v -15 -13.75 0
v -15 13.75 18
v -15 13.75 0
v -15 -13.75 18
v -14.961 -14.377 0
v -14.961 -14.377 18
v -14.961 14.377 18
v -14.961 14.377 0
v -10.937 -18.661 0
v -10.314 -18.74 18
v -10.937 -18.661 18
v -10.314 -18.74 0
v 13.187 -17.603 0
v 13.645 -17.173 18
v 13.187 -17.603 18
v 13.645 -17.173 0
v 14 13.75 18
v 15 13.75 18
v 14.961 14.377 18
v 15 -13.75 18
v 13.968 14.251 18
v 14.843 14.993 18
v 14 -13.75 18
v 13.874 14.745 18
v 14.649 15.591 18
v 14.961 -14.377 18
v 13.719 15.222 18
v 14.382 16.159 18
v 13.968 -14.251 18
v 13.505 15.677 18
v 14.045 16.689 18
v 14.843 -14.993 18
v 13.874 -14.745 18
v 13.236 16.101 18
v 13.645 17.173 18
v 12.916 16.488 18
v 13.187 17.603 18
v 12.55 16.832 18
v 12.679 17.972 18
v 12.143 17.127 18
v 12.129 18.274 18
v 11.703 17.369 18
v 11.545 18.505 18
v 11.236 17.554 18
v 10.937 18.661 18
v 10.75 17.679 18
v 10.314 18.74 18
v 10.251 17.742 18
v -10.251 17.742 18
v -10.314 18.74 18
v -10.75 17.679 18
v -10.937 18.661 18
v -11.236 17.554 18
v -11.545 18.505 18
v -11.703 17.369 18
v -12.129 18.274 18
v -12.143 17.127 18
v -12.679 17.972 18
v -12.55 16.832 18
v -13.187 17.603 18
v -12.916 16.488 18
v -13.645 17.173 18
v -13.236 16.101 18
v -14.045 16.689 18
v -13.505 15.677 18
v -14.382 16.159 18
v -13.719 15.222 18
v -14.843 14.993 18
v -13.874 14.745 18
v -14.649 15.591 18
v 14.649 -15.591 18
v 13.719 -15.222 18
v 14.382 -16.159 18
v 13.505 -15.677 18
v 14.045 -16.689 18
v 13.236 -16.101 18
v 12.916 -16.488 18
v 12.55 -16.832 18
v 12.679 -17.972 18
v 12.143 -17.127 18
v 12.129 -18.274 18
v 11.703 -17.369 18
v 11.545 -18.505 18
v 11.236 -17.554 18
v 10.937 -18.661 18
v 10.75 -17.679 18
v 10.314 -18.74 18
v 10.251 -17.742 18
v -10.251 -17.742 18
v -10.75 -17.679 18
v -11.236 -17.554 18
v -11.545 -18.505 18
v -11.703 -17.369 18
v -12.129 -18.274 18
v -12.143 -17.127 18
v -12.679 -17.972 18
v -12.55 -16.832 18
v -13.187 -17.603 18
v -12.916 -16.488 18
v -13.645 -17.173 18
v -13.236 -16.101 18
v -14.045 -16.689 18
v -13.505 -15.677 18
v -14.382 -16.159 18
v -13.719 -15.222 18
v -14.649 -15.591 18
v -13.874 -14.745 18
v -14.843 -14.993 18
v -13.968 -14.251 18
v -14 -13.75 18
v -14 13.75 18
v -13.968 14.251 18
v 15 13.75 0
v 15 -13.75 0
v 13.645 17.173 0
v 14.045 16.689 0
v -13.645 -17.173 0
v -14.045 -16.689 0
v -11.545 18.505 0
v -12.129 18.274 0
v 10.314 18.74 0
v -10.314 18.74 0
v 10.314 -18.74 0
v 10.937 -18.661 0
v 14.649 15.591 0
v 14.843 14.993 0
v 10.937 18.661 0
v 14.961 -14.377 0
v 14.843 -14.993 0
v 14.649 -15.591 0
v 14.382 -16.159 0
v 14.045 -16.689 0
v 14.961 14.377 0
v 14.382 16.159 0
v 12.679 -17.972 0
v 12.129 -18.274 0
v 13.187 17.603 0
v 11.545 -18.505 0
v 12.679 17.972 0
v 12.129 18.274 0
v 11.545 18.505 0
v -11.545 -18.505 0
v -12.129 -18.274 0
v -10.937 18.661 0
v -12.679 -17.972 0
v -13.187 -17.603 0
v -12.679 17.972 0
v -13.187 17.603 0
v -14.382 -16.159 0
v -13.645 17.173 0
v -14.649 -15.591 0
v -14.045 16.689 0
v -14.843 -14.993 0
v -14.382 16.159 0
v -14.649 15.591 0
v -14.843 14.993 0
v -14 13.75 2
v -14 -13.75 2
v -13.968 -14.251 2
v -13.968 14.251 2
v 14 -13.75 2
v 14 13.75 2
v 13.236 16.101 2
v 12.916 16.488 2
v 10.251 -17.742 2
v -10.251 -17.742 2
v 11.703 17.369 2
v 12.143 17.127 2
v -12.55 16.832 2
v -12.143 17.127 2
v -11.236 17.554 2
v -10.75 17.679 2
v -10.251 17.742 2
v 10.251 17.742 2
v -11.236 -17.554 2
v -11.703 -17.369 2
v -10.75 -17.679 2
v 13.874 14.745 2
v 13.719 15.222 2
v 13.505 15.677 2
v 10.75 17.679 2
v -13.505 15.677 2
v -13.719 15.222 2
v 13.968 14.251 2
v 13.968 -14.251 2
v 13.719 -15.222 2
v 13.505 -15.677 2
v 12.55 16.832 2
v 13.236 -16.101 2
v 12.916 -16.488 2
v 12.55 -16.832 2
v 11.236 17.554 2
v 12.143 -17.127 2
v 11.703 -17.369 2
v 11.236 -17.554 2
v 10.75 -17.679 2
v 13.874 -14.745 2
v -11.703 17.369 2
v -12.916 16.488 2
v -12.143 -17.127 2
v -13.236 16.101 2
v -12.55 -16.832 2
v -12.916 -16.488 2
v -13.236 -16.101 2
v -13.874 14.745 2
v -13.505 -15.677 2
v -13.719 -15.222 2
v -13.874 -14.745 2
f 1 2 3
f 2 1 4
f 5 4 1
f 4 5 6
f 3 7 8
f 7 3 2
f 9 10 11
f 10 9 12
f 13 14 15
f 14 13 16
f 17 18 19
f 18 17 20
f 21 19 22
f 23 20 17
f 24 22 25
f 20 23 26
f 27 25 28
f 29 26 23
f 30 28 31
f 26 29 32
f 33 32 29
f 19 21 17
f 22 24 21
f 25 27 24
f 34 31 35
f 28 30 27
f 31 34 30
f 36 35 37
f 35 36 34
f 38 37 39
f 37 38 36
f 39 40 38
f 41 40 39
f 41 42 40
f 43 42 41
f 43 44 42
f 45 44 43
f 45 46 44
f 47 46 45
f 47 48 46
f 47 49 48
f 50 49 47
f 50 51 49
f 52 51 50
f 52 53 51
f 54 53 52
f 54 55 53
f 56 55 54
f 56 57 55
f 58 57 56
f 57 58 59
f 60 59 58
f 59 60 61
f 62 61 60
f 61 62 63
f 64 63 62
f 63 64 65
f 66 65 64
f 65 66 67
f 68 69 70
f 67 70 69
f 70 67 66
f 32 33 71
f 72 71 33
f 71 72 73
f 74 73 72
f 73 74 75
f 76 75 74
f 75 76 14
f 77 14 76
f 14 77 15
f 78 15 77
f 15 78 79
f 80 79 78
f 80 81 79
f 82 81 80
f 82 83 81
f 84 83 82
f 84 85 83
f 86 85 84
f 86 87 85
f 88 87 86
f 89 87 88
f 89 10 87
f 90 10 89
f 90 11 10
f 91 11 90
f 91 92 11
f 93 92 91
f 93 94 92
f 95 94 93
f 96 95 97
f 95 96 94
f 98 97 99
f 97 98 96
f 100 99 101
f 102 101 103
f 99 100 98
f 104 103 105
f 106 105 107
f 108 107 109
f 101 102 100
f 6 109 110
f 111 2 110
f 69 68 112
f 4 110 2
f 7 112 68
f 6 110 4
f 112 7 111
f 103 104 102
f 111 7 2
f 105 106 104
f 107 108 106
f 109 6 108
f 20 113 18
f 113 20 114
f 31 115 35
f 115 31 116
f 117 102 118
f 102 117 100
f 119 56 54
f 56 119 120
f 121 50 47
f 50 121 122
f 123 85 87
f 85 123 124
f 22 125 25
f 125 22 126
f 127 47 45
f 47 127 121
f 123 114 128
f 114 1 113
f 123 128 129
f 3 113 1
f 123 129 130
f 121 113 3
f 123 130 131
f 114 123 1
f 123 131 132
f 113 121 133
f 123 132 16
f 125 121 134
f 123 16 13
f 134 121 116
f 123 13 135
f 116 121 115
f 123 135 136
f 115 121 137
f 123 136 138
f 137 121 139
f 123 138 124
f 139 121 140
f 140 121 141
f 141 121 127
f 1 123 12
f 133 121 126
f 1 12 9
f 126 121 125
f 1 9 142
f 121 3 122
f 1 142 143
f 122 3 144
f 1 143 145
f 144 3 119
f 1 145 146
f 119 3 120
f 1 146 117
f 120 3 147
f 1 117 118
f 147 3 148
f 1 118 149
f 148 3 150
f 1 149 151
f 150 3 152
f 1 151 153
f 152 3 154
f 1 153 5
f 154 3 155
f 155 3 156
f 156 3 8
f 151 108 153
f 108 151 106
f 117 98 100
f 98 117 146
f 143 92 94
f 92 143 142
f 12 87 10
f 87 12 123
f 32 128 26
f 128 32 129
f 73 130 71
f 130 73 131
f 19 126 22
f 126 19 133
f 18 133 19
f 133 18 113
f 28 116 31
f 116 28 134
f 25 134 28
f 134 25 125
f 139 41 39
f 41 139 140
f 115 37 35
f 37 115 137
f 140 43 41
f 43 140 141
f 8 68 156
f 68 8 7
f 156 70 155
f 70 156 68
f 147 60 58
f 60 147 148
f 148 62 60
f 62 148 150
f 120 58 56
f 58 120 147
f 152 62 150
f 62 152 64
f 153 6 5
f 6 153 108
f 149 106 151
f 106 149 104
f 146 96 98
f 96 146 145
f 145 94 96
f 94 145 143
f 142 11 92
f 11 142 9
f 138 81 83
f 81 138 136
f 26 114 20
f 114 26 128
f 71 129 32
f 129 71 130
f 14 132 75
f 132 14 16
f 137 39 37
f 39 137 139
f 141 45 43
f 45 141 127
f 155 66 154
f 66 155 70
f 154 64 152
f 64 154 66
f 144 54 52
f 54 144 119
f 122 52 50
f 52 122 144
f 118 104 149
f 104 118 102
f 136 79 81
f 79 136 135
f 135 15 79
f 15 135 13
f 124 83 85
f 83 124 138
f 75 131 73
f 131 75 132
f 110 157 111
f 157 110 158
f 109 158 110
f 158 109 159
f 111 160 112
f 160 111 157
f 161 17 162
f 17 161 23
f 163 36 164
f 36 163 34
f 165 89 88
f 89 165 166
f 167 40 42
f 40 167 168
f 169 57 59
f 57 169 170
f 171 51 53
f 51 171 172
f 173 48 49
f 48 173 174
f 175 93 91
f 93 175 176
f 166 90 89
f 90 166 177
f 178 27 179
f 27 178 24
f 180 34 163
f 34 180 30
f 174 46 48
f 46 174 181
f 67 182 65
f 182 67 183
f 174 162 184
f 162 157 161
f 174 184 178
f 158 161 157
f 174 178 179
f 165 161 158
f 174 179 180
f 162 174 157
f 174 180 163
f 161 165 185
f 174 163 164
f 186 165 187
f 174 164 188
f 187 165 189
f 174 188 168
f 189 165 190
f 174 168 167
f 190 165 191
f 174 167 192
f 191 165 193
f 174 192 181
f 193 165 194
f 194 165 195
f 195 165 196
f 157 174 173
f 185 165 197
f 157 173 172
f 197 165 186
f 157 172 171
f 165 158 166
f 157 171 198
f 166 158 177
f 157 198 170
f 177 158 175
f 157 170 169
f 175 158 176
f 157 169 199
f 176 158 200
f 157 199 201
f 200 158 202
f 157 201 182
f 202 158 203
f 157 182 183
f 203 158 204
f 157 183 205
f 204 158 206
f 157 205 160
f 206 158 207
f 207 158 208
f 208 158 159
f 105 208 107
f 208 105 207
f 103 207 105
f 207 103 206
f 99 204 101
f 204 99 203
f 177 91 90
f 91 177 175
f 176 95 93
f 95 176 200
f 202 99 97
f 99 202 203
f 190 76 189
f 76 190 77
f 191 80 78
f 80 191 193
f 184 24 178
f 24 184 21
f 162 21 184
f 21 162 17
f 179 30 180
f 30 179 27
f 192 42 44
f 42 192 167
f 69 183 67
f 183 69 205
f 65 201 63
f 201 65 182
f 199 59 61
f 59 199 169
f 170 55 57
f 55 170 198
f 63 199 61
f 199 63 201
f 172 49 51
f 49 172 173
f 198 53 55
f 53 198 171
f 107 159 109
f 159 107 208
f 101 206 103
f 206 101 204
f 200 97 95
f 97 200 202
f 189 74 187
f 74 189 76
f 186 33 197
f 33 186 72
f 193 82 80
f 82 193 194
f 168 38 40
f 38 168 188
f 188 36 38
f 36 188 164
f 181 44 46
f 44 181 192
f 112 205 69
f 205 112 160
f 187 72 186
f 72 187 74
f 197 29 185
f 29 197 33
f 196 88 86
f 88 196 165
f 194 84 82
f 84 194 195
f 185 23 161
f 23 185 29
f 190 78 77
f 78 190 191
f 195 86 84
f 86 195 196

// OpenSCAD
$fn = 50;


difference() {
	union() {
		hull() {
			translate(v = [-10.0000000000, 13.7500000000, 0]) {
				cylinder(h = 18, r = 5);
			}
			translate(v = [10.0000000000, 13.7500000000, 0]) {
				cylinder(h = 18, r = 5);
			}
			translate(v = [-10.0000000000, -13.7500000000, 0]) {
				cylinder(h = 18, r = 5);
			}
			translate(v = [10.0000000000, -13.7500000000, 0]) {
				cylinder(h = 18, r = 5);
			}
		}
	}
	union() {
		translate(v = [0, 0, 2]) {
			#hull() {
				translate(v = [-10.0000000000, 13.7500000000, 0]) {
					cylinder(h = 16, r = 4);
				}
				translate(v = [10.0000000000, 13.7500000000, 0]) {
					cylinder(h = 16, r = 4);
				}
				translate(v = [-10.0000000000, -13.7500000000, 0]) {
					cylinder(h = 16, r = 4);
				}
				translate(v = [10.0000000000, -13.7500000000, 0]) {
					cylinder(h = 16, r = 4);
				}
			}
		}
	}
}
